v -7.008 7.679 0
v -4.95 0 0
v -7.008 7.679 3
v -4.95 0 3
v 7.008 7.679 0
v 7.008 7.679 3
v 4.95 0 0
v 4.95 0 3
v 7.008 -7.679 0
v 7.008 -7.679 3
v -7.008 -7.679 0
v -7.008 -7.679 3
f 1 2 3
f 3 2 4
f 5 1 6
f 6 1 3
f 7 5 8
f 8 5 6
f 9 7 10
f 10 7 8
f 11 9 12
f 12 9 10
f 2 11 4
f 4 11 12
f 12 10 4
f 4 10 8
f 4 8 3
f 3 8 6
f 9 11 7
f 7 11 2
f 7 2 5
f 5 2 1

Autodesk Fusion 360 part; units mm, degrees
sketch "Sketch1" plane through (0, 0, 0) normal (0, 0, 1) x (1, 0, 0)
  line L0 (0, 0) -> (5, 0) construction
  line L1 (5, 0) -> (7.0706, 7.7274) construction
  line L2 (5, 0) -> (13, 0) construction
  line L3 (5, 0) -> (7.0706, -7.7274) construction
  line L4 (5, 0) -> (13, 0) construction
  line L5 (0, 0) -> (-5, 0) construction
  line L6 (-5, 0) -> (-7.0706, 7.7274) construction
  line L7 (-5, 0) -> (0, 0) construction
  line L8 (-5, 0) -> (-7.0706, -7.7274) construction
  line L9 (-5, 0) -> (0, 0) construction
  line L10 (-7.0706, -7.7274) -> (7.0706, -7.7274) construction
  line L11 (-7.0706, 7.7274) -> (7.0706, 7.7274) construction
  line L12 (0, 0) -> (4.95, 0) construction
  line L13 (4.95, 0) -> (7.0076, 7.6791)
  line L14 (4.95, 0) -> (12.8, 0) construction
  line L15 (4.95, 0) -> (7.0076, -7.6791)
  line L16 (4.95, 0) -> (12.8, 0) construction
  line L17 (0, 0) -> (-4.95, 0) construction
  line L18 (-4.95, 0) -> (-7.0076, 7.6791)
  line L19 (-4.95, 0) -> (3, 0) construction
  line L20 (-7.0076, 7.6791) -> (7.0076, 7.6791)
  line L21 (-4.95, 0) -> (-7.0076, -7.6791)
  line L22 (-7.0076, -7.6791) -> (7.0076, -7.6791)
  dimension "d1" = 5
  dimension "d2" = 75
  dimension "d3" = 8
  dimension "d4" = 75
  dimension "d5" = 8
  dimension "d6" = 5
  dimension "d7" = 105
  dimension "d8" = 8
  dimension "d9" = 105
  dimension "d10" = 8
  dimension "d11" = 4.95
  dimension "d12" = 75
  dimension "d13" = 7.95
  dimension "d14" = 75
  dimension "d15" = 7.95
  dimension "d16" = 4.95
  dimension "d17" = 105
  dimension "d18" = 7.95
  dimension "d19" = 75
  dimension "d20" = 7.95
extrude "Extrude1" add sketch "Sketch1" along normal blind 3
